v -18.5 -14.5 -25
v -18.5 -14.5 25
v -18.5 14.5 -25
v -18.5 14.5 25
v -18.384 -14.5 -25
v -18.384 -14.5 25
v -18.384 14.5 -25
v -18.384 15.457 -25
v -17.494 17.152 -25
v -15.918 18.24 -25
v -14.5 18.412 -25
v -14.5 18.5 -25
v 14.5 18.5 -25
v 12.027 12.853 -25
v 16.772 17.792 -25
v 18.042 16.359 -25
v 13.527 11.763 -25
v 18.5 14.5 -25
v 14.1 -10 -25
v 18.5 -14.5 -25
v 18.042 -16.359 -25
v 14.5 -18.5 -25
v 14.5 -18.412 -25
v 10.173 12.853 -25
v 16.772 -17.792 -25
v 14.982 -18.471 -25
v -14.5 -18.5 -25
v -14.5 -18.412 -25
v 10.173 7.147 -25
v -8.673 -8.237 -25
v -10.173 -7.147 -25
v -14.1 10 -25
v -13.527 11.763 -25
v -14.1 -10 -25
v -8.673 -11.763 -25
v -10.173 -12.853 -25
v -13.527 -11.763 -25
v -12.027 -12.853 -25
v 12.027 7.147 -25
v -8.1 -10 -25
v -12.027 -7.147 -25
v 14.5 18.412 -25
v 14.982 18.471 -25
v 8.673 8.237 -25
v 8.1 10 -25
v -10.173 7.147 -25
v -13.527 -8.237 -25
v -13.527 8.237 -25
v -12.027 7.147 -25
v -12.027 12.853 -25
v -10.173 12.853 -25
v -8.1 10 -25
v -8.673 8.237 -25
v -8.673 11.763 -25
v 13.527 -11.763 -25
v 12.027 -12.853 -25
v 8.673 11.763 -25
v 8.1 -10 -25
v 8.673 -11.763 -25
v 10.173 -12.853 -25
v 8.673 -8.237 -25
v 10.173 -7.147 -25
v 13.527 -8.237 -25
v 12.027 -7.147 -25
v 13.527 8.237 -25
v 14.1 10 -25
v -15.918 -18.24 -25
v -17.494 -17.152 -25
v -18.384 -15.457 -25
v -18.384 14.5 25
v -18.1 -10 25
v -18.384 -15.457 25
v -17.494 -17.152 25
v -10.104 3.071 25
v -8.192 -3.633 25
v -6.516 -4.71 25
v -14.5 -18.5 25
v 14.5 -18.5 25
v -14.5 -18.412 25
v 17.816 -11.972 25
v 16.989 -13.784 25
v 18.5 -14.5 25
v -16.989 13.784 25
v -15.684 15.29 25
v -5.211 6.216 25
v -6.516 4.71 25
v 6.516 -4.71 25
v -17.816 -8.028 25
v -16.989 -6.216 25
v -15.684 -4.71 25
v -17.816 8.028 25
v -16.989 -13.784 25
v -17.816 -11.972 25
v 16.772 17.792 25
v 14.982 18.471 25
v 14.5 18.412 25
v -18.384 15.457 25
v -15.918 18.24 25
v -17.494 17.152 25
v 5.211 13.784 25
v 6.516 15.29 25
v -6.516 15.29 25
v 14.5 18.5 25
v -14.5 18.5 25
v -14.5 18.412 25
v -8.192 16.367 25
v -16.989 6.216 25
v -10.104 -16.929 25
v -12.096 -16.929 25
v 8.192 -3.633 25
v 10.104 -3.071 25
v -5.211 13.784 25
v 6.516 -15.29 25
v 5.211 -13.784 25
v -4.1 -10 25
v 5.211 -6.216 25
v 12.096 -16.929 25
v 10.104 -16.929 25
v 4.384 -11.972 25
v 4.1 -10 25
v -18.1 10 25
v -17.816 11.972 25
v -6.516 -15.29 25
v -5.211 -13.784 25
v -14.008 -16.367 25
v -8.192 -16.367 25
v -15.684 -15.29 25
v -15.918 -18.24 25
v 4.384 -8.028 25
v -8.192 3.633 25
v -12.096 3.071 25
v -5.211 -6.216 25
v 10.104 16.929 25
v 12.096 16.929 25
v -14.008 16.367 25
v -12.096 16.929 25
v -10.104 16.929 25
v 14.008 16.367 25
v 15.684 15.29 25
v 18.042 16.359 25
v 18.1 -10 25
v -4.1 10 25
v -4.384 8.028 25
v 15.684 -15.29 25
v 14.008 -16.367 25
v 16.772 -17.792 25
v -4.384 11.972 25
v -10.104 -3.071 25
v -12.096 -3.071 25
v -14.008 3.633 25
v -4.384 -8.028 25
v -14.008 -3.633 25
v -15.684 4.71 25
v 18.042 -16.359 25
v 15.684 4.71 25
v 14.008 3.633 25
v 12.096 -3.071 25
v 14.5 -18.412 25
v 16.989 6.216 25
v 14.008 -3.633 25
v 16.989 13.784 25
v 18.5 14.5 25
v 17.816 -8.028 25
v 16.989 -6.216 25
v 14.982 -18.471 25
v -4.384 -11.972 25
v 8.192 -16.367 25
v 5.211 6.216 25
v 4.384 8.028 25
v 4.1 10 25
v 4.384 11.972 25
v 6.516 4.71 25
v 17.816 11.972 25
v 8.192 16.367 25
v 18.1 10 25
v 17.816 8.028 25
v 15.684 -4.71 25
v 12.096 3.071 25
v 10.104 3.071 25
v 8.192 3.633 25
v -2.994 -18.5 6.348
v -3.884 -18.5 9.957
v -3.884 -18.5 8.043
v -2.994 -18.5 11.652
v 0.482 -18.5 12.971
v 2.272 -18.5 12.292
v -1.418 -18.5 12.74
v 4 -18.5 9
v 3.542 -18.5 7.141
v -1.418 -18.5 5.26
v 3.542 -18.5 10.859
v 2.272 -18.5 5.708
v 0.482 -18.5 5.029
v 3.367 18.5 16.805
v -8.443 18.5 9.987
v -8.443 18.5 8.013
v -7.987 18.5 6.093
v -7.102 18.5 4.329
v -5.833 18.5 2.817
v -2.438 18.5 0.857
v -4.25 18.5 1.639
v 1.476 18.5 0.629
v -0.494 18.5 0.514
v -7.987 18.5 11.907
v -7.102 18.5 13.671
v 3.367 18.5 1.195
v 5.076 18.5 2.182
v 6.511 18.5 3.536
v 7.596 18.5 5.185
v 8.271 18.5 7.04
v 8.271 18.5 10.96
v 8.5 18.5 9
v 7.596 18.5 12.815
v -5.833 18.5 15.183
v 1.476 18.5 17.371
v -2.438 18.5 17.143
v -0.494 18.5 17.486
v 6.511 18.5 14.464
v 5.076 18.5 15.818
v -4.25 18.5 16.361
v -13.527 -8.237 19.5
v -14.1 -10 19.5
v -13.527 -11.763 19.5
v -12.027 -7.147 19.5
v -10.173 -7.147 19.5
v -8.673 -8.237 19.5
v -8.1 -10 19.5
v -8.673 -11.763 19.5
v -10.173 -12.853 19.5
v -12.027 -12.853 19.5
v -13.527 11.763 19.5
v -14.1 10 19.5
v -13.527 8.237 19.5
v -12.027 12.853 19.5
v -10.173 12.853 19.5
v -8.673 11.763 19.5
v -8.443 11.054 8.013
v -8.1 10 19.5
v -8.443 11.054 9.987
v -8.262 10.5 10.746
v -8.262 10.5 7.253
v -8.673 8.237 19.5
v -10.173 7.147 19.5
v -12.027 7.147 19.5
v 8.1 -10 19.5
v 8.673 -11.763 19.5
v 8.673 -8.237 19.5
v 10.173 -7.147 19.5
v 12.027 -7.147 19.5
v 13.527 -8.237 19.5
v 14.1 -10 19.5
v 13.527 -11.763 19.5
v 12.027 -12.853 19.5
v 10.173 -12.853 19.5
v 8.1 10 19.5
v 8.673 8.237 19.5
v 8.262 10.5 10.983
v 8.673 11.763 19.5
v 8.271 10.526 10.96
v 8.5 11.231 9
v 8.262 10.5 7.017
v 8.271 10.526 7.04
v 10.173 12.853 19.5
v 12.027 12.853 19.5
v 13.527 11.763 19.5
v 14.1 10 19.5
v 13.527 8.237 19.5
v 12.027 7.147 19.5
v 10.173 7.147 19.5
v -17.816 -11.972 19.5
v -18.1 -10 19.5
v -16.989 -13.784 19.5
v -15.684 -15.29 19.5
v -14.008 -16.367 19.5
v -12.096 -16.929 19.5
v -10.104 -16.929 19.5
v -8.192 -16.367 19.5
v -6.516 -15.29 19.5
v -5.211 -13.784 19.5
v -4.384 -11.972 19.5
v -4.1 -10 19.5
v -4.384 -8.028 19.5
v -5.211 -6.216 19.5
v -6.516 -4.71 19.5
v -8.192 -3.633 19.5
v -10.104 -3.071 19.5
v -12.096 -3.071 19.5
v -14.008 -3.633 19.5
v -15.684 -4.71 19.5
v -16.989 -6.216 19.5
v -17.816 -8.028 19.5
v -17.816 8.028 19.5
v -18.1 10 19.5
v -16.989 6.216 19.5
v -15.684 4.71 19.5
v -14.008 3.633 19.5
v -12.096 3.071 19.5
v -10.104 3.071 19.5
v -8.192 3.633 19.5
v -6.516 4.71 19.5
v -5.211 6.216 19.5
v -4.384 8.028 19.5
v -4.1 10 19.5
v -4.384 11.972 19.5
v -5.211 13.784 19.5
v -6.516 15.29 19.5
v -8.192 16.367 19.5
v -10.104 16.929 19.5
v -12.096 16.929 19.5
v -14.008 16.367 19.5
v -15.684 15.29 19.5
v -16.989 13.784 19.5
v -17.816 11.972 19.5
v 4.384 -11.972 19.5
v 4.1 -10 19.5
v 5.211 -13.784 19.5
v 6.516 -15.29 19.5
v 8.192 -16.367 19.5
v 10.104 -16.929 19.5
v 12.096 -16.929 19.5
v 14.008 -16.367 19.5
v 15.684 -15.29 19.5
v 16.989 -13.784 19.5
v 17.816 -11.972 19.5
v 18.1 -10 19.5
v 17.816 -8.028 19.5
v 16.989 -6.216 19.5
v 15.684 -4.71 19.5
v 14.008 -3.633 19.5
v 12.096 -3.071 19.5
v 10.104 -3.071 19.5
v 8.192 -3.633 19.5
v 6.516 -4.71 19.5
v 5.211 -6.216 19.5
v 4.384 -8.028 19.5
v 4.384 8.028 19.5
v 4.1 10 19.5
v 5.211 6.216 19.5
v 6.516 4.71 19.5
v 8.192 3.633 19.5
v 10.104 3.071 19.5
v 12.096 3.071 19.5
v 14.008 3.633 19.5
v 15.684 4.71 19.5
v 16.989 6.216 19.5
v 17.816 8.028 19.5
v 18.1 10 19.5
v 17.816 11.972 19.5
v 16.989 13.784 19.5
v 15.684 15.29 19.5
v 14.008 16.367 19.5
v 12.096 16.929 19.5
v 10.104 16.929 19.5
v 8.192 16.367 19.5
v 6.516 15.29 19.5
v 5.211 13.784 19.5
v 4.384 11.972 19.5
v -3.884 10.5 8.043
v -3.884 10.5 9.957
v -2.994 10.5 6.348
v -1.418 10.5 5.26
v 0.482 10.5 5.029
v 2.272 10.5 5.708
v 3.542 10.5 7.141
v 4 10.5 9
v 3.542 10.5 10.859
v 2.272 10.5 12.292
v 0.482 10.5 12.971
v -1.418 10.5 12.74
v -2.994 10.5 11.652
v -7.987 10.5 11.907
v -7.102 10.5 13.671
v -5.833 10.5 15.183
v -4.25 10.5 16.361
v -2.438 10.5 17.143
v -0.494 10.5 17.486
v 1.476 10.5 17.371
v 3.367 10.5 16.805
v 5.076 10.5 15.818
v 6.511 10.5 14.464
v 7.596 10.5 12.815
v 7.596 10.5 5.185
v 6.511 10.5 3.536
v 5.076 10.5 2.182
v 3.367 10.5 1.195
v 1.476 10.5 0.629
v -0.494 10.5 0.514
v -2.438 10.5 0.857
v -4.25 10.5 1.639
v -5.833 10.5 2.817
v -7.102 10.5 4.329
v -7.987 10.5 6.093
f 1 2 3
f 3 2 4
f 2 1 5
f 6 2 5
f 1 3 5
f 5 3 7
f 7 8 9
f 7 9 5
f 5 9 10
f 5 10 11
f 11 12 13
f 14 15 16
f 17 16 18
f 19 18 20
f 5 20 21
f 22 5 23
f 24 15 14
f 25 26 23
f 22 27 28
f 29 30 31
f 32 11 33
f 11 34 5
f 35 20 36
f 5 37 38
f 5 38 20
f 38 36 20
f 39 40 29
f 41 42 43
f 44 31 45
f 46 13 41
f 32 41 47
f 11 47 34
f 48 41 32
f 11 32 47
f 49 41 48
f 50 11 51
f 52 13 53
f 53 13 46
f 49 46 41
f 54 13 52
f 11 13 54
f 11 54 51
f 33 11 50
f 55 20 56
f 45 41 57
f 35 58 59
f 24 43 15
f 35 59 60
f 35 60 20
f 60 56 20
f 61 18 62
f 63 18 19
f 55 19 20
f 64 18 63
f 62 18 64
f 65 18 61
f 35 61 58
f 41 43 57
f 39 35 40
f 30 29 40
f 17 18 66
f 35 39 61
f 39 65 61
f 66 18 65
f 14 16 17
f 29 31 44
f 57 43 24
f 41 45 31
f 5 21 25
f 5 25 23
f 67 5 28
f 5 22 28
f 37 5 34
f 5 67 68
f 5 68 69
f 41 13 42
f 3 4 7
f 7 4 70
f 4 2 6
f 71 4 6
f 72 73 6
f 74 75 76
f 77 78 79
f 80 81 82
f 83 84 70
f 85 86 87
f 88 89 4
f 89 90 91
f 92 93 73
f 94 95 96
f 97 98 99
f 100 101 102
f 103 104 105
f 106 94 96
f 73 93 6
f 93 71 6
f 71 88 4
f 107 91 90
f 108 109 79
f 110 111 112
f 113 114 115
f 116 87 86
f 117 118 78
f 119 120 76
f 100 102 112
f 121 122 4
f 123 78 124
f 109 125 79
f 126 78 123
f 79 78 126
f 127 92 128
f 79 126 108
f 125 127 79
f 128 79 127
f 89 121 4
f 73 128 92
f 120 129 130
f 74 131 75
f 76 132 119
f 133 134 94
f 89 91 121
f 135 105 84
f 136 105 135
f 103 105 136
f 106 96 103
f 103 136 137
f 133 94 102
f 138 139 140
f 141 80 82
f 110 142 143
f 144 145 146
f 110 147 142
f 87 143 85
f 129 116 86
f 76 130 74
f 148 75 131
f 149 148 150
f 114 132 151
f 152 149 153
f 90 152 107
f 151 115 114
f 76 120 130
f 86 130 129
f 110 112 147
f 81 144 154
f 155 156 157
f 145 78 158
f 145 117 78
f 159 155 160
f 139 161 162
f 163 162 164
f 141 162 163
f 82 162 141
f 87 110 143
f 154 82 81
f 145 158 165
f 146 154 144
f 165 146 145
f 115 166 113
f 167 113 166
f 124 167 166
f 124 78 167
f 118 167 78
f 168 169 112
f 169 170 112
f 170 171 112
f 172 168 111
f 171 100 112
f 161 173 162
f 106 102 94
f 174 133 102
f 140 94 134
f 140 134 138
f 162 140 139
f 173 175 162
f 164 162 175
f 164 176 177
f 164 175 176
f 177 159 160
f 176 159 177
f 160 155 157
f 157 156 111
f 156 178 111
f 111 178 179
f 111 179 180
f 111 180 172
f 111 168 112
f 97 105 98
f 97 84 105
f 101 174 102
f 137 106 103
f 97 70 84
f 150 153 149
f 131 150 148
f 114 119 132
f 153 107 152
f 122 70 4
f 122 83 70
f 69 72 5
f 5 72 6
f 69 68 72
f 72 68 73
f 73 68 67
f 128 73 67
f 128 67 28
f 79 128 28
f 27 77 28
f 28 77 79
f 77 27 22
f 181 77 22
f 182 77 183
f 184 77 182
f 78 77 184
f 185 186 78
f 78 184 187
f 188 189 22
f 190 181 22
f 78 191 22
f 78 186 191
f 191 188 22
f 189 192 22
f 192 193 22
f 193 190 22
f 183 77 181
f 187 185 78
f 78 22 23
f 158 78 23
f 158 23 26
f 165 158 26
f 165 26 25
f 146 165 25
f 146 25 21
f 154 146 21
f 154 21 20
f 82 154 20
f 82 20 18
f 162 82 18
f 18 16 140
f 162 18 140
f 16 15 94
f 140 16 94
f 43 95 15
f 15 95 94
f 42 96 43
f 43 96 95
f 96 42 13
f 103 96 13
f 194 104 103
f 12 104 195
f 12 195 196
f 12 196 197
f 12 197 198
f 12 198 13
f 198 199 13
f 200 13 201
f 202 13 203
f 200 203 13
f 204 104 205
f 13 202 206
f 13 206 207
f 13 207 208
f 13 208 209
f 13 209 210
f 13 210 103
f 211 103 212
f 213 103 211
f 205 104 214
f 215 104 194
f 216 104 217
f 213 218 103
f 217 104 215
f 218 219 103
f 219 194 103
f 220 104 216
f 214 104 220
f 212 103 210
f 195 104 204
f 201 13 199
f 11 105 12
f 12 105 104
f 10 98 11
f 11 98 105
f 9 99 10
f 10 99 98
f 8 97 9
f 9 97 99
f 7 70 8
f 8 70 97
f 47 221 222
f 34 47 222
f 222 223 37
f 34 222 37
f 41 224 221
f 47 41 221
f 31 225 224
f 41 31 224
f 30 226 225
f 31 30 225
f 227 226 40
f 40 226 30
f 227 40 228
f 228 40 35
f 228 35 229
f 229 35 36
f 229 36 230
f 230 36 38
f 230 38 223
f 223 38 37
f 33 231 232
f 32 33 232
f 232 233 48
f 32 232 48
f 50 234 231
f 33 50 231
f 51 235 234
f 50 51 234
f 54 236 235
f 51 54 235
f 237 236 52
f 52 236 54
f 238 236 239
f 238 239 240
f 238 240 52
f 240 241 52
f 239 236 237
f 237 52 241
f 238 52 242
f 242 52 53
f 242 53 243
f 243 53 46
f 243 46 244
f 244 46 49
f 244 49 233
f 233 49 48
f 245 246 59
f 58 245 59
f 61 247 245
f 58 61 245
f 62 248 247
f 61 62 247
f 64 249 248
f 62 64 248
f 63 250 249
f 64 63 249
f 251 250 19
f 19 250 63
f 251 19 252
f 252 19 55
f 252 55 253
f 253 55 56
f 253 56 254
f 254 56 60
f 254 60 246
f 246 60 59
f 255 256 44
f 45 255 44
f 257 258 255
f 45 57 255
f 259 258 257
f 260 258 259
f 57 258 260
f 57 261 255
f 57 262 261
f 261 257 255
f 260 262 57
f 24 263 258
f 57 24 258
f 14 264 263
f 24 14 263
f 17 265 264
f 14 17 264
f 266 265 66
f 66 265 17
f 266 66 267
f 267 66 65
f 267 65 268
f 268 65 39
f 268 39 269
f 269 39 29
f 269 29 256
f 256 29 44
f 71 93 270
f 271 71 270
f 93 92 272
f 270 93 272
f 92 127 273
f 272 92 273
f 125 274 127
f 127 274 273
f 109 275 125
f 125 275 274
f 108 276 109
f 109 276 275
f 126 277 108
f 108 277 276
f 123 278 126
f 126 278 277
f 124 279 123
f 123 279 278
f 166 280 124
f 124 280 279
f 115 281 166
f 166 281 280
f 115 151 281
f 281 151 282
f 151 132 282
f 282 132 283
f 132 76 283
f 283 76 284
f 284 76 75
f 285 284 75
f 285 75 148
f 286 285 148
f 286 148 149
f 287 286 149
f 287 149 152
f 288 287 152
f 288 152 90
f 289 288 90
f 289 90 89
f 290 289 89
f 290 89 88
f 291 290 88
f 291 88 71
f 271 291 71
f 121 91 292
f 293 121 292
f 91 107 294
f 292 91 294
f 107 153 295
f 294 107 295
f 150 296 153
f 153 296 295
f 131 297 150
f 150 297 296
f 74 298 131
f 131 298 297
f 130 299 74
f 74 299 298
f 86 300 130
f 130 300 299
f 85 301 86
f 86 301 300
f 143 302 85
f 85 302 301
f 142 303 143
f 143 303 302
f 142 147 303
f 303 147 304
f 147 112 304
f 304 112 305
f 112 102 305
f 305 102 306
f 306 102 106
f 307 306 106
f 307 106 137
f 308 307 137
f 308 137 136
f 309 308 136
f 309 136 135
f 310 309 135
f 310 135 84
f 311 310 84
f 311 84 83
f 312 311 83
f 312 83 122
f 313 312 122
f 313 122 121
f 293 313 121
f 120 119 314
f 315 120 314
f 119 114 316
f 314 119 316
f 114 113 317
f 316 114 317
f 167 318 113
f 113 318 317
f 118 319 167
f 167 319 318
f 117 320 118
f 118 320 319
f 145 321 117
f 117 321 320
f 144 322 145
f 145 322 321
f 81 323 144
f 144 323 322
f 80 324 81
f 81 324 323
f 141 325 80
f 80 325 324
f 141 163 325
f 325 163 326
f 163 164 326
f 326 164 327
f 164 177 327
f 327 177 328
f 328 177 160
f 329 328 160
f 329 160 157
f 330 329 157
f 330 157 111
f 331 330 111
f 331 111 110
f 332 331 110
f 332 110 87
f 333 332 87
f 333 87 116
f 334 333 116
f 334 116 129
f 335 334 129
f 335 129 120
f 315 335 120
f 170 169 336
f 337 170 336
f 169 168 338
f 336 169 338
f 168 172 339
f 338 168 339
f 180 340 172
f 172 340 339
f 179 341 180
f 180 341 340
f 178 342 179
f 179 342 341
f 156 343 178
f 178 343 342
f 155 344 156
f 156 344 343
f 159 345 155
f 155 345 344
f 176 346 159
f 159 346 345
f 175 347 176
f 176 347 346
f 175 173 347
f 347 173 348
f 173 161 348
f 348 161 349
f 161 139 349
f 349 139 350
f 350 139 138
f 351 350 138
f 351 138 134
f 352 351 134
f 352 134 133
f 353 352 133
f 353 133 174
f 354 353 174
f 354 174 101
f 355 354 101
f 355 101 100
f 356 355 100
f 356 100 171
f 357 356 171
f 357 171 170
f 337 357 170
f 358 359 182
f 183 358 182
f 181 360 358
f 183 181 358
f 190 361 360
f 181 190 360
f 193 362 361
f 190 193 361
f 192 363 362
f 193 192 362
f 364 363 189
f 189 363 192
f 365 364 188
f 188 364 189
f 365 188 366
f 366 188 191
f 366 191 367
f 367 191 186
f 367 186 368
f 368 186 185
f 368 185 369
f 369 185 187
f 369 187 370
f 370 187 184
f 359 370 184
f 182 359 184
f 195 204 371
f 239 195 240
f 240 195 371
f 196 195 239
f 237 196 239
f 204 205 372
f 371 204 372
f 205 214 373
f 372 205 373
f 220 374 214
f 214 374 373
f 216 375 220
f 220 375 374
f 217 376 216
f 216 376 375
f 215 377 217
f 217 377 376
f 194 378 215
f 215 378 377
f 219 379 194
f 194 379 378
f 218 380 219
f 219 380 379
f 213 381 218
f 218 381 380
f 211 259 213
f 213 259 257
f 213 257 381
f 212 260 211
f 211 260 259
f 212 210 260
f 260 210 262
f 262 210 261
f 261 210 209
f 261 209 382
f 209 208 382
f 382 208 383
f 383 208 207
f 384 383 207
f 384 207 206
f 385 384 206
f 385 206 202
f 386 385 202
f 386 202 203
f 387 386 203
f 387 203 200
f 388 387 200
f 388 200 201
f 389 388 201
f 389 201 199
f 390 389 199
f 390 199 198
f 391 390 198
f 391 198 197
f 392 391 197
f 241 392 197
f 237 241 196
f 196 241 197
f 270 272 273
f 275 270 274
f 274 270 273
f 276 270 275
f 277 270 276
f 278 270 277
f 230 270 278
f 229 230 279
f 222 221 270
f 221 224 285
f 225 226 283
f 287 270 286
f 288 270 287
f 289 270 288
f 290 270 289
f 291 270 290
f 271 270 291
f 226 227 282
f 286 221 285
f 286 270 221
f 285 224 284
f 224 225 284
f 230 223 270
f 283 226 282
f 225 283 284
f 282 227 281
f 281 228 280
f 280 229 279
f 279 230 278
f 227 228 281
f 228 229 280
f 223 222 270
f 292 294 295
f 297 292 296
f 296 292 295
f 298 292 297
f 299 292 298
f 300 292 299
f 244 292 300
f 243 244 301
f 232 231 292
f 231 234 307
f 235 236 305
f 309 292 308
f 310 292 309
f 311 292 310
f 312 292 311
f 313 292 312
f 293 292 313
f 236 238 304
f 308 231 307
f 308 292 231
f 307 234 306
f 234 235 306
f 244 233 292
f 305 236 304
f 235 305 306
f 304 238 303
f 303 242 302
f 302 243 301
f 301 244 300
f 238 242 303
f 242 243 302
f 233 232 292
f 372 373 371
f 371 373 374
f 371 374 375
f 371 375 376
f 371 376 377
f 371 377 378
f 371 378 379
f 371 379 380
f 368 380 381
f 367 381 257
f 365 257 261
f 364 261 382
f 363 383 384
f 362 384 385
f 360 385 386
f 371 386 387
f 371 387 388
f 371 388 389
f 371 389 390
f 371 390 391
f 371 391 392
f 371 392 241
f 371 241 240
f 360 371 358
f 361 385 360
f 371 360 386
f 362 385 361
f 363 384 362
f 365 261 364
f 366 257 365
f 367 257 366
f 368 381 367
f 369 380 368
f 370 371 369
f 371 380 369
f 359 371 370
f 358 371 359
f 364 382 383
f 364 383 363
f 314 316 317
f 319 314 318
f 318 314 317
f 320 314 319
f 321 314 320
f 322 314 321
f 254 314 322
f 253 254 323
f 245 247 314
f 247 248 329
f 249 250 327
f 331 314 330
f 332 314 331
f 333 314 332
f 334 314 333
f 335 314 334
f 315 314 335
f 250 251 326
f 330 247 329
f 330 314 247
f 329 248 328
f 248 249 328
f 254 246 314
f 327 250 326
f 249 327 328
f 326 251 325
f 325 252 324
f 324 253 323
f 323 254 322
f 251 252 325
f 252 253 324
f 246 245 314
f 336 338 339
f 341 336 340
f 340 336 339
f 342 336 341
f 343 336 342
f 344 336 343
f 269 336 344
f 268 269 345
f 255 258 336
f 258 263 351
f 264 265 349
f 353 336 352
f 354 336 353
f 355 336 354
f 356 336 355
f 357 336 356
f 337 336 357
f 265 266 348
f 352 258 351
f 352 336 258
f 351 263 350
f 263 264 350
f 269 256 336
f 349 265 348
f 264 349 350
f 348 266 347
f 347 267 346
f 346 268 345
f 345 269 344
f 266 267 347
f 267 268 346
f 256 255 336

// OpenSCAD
use <MCAD/boxes.scad>



module burato_tornillo( diametro_tornillo, diametro_arandela ) {

	cylinder(h=1000, r1=diametro_tornillo/2, r2=diametro_tornillo/2, center=true);
	cylinder(h=11, r1=diametro_arandela/2, r2=diametro_arandela/2, center=true);
	//cube([diametro_tuerca,diametro_tuerca,7], center = true);
}

difference() {
	union() {
		roundedBox([37, 37, 50], 4, true);  
	}
	union() {
		
		translate([0,16,9])	
			rotate([90,0,0])
				burato_tornillo(8,17);

		translate([11.1,10,25])	
			rotate([0,0,0])
				burato_tornillo(6,14);	
		translate([-11.1,-10,25])	
			rotate([0,0,0])
				burato_tornillo(6,14);		  
		translate([11.1,-10,25])	
			rotate([0,0,0])
				burato_tornillo(6,14);	
		translate([-11.1,10,25])	
			rotate([0,0,0])
				burato_tornillo(6,14);	
	}
}
